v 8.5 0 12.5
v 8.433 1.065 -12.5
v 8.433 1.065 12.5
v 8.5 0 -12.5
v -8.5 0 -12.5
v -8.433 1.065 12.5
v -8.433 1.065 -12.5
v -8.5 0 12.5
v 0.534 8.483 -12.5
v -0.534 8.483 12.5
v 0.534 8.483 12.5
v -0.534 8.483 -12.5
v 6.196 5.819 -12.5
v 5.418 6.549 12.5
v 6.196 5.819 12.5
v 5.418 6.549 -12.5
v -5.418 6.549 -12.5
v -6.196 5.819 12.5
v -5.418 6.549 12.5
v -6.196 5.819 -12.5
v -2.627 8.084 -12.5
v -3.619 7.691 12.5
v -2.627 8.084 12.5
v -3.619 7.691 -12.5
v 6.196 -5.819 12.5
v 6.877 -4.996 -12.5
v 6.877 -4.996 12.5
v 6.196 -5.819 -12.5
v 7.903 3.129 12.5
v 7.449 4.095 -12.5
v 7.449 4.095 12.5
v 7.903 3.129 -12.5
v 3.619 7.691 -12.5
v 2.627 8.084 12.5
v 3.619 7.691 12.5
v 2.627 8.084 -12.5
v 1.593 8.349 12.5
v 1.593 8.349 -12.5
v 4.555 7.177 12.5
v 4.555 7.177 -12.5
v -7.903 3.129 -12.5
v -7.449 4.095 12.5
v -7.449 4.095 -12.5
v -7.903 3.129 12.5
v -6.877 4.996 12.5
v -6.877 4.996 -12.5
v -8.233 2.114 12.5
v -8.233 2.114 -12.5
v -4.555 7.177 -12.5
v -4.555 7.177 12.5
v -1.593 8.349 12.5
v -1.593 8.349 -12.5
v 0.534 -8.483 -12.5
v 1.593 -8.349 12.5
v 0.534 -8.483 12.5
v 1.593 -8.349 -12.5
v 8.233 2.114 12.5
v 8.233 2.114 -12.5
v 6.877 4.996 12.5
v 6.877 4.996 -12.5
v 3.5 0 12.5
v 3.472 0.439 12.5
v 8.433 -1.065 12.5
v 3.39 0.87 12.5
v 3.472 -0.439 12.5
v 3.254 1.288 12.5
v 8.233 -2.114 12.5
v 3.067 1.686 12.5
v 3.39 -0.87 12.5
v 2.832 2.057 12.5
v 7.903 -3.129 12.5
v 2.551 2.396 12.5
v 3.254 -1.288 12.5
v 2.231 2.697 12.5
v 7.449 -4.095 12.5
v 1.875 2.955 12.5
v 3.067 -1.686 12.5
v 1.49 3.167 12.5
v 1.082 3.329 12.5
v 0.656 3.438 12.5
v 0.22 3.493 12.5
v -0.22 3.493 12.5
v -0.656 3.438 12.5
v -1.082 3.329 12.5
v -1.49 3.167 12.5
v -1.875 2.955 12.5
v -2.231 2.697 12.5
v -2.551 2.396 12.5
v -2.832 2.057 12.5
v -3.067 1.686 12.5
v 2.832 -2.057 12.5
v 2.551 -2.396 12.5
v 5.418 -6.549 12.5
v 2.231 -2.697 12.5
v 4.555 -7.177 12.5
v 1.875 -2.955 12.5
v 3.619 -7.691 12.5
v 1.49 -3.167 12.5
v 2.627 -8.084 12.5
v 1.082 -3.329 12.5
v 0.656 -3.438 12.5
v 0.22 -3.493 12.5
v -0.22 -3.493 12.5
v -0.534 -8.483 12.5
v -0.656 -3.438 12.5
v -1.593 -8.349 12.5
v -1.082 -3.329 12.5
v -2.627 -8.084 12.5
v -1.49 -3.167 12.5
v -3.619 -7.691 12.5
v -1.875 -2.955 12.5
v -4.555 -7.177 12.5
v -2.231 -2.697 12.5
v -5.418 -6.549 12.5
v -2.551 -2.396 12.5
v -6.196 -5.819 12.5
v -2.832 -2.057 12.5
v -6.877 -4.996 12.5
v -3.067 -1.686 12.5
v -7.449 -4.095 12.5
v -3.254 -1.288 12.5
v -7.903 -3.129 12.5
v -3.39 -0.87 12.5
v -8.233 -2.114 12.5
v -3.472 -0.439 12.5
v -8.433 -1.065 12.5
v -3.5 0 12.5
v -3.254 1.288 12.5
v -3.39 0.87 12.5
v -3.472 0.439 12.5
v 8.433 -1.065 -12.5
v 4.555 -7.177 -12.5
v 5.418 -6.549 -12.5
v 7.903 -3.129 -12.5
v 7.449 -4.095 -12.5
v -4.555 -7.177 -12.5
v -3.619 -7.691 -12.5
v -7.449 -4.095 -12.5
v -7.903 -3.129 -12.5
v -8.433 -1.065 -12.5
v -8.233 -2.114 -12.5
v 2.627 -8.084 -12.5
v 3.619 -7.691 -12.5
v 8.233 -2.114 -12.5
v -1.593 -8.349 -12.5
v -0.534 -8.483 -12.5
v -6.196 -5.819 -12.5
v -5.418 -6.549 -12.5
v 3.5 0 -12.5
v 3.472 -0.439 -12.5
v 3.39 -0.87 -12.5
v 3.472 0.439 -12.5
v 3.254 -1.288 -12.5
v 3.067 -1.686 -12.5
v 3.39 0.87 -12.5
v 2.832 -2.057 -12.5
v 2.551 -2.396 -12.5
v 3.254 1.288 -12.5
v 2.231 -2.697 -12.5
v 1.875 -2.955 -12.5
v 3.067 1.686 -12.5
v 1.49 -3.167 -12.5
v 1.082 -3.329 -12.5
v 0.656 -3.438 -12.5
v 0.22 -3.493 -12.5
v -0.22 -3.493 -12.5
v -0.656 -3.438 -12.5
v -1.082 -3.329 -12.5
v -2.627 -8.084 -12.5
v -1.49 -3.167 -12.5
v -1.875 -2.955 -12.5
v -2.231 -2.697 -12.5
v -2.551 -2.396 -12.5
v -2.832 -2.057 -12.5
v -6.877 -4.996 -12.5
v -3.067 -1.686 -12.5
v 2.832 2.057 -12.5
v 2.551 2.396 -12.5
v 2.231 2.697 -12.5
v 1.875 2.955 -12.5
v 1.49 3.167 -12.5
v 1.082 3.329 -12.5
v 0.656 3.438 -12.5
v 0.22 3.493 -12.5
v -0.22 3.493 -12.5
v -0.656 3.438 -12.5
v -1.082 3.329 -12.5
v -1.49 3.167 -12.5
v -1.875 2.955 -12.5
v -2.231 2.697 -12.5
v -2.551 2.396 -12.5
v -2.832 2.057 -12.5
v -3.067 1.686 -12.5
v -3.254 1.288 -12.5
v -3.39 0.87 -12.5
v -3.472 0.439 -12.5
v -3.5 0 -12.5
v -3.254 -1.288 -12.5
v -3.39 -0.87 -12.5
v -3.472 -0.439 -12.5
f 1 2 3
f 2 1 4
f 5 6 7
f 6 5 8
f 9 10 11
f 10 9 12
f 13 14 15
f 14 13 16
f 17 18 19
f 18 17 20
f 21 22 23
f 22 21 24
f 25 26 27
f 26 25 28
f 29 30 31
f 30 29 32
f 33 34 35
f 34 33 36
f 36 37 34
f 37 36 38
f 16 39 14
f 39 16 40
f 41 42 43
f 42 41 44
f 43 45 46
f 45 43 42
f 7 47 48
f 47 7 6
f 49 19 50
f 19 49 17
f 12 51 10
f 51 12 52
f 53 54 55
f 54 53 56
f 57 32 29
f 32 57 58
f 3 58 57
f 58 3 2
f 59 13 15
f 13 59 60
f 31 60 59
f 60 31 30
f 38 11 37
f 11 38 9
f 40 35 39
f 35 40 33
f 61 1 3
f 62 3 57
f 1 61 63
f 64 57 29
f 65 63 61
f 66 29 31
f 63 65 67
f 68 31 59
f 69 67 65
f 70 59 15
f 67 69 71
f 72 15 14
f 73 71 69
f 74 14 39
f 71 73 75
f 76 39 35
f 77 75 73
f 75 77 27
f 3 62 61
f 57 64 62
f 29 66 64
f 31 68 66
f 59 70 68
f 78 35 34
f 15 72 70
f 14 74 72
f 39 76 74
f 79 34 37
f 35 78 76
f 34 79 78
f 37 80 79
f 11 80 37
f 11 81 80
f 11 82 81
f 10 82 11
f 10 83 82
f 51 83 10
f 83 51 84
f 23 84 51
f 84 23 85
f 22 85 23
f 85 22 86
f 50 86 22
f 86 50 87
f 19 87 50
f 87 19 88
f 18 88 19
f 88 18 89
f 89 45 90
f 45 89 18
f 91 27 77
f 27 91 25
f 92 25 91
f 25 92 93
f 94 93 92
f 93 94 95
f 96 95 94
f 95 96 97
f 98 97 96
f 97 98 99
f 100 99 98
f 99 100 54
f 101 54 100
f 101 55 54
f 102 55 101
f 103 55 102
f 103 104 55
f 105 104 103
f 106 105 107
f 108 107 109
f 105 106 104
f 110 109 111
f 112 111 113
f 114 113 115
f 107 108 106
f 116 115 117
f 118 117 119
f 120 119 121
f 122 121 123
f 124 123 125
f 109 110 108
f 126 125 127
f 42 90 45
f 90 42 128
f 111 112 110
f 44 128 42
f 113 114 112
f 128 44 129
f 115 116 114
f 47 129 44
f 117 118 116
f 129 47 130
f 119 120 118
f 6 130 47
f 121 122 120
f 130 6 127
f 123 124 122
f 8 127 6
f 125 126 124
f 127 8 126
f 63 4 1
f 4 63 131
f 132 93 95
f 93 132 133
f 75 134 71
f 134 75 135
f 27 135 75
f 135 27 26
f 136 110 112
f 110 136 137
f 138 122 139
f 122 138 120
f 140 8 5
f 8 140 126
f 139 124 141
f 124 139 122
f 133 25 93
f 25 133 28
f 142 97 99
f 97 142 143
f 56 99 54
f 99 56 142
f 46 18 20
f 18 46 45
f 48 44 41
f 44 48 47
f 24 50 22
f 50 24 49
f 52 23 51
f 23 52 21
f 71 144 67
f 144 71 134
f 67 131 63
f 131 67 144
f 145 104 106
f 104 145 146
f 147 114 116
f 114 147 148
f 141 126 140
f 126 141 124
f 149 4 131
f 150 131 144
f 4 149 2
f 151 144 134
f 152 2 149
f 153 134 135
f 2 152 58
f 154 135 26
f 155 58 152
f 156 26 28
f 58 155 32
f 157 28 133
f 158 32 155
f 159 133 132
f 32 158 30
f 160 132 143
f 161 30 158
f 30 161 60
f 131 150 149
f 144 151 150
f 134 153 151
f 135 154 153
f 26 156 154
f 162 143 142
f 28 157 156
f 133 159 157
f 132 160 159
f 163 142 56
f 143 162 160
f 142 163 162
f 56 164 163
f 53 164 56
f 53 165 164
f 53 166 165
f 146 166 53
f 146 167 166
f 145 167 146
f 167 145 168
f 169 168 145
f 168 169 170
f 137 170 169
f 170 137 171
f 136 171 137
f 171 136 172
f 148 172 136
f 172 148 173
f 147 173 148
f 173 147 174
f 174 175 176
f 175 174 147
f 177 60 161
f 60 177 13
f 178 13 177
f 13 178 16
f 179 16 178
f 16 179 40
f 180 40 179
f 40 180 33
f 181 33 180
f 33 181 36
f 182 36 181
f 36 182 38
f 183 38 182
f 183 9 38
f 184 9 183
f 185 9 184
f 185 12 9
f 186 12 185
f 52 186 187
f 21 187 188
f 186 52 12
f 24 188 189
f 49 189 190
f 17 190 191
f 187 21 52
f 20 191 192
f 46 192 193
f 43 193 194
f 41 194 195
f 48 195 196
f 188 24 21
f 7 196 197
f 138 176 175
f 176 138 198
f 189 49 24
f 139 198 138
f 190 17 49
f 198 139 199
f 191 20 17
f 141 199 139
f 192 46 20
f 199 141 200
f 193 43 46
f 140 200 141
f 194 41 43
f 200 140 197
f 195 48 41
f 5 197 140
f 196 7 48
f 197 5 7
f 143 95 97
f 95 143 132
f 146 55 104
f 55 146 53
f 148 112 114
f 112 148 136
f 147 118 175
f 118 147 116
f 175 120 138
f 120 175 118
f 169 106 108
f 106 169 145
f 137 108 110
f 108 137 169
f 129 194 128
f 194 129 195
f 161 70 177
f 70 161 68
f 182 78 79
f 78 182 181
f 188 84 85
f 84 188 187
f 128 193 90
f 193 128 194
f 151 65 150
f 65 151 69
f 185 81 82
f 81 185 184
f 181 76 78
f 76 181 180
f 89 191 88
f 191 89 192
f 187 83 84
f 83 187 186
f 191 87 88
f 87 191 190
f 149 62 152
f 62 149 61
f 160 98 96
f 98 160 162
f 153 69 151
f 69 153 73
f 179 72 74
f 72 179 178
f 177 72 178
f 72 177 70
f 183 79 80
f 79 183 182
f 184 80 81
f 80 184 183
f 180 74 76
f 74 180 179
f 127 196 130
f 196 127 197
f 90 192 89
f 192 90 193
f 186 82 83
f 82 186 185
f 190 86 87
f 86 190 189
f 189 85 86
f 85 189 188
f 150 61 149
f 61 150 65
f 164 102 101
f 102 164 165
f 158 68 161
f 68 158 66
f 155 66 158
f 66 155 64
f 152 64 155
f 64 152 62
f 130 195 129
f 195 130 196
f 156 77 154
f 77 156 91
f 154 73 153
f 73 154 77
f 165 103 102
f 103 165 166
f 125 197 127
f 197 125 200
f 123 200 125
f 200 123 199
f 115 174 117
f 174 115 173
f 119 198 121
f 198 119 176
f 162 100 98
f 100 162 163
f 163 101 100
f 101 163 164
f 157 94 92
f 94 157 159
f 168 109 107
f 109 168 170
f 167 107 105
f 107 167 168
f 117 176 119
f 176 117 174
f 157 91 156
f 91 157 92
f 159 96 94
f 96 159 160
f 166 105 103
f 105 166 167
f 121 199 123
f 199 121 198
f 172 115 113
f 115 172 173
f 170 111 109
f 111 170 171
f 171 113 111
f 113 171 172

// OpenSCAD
$fn = 50;


difference() {
	union() {
		translate(v = [0, 0, -12.5000000000]) {
			cylinder(h = 25, r = 8.5000000000);
		}
	}
	union() {
		translate(v = [0, 0, -100.0000000000]) {
			cylinder(h = 200, r = 3.5000000000);
		}
	}
}
